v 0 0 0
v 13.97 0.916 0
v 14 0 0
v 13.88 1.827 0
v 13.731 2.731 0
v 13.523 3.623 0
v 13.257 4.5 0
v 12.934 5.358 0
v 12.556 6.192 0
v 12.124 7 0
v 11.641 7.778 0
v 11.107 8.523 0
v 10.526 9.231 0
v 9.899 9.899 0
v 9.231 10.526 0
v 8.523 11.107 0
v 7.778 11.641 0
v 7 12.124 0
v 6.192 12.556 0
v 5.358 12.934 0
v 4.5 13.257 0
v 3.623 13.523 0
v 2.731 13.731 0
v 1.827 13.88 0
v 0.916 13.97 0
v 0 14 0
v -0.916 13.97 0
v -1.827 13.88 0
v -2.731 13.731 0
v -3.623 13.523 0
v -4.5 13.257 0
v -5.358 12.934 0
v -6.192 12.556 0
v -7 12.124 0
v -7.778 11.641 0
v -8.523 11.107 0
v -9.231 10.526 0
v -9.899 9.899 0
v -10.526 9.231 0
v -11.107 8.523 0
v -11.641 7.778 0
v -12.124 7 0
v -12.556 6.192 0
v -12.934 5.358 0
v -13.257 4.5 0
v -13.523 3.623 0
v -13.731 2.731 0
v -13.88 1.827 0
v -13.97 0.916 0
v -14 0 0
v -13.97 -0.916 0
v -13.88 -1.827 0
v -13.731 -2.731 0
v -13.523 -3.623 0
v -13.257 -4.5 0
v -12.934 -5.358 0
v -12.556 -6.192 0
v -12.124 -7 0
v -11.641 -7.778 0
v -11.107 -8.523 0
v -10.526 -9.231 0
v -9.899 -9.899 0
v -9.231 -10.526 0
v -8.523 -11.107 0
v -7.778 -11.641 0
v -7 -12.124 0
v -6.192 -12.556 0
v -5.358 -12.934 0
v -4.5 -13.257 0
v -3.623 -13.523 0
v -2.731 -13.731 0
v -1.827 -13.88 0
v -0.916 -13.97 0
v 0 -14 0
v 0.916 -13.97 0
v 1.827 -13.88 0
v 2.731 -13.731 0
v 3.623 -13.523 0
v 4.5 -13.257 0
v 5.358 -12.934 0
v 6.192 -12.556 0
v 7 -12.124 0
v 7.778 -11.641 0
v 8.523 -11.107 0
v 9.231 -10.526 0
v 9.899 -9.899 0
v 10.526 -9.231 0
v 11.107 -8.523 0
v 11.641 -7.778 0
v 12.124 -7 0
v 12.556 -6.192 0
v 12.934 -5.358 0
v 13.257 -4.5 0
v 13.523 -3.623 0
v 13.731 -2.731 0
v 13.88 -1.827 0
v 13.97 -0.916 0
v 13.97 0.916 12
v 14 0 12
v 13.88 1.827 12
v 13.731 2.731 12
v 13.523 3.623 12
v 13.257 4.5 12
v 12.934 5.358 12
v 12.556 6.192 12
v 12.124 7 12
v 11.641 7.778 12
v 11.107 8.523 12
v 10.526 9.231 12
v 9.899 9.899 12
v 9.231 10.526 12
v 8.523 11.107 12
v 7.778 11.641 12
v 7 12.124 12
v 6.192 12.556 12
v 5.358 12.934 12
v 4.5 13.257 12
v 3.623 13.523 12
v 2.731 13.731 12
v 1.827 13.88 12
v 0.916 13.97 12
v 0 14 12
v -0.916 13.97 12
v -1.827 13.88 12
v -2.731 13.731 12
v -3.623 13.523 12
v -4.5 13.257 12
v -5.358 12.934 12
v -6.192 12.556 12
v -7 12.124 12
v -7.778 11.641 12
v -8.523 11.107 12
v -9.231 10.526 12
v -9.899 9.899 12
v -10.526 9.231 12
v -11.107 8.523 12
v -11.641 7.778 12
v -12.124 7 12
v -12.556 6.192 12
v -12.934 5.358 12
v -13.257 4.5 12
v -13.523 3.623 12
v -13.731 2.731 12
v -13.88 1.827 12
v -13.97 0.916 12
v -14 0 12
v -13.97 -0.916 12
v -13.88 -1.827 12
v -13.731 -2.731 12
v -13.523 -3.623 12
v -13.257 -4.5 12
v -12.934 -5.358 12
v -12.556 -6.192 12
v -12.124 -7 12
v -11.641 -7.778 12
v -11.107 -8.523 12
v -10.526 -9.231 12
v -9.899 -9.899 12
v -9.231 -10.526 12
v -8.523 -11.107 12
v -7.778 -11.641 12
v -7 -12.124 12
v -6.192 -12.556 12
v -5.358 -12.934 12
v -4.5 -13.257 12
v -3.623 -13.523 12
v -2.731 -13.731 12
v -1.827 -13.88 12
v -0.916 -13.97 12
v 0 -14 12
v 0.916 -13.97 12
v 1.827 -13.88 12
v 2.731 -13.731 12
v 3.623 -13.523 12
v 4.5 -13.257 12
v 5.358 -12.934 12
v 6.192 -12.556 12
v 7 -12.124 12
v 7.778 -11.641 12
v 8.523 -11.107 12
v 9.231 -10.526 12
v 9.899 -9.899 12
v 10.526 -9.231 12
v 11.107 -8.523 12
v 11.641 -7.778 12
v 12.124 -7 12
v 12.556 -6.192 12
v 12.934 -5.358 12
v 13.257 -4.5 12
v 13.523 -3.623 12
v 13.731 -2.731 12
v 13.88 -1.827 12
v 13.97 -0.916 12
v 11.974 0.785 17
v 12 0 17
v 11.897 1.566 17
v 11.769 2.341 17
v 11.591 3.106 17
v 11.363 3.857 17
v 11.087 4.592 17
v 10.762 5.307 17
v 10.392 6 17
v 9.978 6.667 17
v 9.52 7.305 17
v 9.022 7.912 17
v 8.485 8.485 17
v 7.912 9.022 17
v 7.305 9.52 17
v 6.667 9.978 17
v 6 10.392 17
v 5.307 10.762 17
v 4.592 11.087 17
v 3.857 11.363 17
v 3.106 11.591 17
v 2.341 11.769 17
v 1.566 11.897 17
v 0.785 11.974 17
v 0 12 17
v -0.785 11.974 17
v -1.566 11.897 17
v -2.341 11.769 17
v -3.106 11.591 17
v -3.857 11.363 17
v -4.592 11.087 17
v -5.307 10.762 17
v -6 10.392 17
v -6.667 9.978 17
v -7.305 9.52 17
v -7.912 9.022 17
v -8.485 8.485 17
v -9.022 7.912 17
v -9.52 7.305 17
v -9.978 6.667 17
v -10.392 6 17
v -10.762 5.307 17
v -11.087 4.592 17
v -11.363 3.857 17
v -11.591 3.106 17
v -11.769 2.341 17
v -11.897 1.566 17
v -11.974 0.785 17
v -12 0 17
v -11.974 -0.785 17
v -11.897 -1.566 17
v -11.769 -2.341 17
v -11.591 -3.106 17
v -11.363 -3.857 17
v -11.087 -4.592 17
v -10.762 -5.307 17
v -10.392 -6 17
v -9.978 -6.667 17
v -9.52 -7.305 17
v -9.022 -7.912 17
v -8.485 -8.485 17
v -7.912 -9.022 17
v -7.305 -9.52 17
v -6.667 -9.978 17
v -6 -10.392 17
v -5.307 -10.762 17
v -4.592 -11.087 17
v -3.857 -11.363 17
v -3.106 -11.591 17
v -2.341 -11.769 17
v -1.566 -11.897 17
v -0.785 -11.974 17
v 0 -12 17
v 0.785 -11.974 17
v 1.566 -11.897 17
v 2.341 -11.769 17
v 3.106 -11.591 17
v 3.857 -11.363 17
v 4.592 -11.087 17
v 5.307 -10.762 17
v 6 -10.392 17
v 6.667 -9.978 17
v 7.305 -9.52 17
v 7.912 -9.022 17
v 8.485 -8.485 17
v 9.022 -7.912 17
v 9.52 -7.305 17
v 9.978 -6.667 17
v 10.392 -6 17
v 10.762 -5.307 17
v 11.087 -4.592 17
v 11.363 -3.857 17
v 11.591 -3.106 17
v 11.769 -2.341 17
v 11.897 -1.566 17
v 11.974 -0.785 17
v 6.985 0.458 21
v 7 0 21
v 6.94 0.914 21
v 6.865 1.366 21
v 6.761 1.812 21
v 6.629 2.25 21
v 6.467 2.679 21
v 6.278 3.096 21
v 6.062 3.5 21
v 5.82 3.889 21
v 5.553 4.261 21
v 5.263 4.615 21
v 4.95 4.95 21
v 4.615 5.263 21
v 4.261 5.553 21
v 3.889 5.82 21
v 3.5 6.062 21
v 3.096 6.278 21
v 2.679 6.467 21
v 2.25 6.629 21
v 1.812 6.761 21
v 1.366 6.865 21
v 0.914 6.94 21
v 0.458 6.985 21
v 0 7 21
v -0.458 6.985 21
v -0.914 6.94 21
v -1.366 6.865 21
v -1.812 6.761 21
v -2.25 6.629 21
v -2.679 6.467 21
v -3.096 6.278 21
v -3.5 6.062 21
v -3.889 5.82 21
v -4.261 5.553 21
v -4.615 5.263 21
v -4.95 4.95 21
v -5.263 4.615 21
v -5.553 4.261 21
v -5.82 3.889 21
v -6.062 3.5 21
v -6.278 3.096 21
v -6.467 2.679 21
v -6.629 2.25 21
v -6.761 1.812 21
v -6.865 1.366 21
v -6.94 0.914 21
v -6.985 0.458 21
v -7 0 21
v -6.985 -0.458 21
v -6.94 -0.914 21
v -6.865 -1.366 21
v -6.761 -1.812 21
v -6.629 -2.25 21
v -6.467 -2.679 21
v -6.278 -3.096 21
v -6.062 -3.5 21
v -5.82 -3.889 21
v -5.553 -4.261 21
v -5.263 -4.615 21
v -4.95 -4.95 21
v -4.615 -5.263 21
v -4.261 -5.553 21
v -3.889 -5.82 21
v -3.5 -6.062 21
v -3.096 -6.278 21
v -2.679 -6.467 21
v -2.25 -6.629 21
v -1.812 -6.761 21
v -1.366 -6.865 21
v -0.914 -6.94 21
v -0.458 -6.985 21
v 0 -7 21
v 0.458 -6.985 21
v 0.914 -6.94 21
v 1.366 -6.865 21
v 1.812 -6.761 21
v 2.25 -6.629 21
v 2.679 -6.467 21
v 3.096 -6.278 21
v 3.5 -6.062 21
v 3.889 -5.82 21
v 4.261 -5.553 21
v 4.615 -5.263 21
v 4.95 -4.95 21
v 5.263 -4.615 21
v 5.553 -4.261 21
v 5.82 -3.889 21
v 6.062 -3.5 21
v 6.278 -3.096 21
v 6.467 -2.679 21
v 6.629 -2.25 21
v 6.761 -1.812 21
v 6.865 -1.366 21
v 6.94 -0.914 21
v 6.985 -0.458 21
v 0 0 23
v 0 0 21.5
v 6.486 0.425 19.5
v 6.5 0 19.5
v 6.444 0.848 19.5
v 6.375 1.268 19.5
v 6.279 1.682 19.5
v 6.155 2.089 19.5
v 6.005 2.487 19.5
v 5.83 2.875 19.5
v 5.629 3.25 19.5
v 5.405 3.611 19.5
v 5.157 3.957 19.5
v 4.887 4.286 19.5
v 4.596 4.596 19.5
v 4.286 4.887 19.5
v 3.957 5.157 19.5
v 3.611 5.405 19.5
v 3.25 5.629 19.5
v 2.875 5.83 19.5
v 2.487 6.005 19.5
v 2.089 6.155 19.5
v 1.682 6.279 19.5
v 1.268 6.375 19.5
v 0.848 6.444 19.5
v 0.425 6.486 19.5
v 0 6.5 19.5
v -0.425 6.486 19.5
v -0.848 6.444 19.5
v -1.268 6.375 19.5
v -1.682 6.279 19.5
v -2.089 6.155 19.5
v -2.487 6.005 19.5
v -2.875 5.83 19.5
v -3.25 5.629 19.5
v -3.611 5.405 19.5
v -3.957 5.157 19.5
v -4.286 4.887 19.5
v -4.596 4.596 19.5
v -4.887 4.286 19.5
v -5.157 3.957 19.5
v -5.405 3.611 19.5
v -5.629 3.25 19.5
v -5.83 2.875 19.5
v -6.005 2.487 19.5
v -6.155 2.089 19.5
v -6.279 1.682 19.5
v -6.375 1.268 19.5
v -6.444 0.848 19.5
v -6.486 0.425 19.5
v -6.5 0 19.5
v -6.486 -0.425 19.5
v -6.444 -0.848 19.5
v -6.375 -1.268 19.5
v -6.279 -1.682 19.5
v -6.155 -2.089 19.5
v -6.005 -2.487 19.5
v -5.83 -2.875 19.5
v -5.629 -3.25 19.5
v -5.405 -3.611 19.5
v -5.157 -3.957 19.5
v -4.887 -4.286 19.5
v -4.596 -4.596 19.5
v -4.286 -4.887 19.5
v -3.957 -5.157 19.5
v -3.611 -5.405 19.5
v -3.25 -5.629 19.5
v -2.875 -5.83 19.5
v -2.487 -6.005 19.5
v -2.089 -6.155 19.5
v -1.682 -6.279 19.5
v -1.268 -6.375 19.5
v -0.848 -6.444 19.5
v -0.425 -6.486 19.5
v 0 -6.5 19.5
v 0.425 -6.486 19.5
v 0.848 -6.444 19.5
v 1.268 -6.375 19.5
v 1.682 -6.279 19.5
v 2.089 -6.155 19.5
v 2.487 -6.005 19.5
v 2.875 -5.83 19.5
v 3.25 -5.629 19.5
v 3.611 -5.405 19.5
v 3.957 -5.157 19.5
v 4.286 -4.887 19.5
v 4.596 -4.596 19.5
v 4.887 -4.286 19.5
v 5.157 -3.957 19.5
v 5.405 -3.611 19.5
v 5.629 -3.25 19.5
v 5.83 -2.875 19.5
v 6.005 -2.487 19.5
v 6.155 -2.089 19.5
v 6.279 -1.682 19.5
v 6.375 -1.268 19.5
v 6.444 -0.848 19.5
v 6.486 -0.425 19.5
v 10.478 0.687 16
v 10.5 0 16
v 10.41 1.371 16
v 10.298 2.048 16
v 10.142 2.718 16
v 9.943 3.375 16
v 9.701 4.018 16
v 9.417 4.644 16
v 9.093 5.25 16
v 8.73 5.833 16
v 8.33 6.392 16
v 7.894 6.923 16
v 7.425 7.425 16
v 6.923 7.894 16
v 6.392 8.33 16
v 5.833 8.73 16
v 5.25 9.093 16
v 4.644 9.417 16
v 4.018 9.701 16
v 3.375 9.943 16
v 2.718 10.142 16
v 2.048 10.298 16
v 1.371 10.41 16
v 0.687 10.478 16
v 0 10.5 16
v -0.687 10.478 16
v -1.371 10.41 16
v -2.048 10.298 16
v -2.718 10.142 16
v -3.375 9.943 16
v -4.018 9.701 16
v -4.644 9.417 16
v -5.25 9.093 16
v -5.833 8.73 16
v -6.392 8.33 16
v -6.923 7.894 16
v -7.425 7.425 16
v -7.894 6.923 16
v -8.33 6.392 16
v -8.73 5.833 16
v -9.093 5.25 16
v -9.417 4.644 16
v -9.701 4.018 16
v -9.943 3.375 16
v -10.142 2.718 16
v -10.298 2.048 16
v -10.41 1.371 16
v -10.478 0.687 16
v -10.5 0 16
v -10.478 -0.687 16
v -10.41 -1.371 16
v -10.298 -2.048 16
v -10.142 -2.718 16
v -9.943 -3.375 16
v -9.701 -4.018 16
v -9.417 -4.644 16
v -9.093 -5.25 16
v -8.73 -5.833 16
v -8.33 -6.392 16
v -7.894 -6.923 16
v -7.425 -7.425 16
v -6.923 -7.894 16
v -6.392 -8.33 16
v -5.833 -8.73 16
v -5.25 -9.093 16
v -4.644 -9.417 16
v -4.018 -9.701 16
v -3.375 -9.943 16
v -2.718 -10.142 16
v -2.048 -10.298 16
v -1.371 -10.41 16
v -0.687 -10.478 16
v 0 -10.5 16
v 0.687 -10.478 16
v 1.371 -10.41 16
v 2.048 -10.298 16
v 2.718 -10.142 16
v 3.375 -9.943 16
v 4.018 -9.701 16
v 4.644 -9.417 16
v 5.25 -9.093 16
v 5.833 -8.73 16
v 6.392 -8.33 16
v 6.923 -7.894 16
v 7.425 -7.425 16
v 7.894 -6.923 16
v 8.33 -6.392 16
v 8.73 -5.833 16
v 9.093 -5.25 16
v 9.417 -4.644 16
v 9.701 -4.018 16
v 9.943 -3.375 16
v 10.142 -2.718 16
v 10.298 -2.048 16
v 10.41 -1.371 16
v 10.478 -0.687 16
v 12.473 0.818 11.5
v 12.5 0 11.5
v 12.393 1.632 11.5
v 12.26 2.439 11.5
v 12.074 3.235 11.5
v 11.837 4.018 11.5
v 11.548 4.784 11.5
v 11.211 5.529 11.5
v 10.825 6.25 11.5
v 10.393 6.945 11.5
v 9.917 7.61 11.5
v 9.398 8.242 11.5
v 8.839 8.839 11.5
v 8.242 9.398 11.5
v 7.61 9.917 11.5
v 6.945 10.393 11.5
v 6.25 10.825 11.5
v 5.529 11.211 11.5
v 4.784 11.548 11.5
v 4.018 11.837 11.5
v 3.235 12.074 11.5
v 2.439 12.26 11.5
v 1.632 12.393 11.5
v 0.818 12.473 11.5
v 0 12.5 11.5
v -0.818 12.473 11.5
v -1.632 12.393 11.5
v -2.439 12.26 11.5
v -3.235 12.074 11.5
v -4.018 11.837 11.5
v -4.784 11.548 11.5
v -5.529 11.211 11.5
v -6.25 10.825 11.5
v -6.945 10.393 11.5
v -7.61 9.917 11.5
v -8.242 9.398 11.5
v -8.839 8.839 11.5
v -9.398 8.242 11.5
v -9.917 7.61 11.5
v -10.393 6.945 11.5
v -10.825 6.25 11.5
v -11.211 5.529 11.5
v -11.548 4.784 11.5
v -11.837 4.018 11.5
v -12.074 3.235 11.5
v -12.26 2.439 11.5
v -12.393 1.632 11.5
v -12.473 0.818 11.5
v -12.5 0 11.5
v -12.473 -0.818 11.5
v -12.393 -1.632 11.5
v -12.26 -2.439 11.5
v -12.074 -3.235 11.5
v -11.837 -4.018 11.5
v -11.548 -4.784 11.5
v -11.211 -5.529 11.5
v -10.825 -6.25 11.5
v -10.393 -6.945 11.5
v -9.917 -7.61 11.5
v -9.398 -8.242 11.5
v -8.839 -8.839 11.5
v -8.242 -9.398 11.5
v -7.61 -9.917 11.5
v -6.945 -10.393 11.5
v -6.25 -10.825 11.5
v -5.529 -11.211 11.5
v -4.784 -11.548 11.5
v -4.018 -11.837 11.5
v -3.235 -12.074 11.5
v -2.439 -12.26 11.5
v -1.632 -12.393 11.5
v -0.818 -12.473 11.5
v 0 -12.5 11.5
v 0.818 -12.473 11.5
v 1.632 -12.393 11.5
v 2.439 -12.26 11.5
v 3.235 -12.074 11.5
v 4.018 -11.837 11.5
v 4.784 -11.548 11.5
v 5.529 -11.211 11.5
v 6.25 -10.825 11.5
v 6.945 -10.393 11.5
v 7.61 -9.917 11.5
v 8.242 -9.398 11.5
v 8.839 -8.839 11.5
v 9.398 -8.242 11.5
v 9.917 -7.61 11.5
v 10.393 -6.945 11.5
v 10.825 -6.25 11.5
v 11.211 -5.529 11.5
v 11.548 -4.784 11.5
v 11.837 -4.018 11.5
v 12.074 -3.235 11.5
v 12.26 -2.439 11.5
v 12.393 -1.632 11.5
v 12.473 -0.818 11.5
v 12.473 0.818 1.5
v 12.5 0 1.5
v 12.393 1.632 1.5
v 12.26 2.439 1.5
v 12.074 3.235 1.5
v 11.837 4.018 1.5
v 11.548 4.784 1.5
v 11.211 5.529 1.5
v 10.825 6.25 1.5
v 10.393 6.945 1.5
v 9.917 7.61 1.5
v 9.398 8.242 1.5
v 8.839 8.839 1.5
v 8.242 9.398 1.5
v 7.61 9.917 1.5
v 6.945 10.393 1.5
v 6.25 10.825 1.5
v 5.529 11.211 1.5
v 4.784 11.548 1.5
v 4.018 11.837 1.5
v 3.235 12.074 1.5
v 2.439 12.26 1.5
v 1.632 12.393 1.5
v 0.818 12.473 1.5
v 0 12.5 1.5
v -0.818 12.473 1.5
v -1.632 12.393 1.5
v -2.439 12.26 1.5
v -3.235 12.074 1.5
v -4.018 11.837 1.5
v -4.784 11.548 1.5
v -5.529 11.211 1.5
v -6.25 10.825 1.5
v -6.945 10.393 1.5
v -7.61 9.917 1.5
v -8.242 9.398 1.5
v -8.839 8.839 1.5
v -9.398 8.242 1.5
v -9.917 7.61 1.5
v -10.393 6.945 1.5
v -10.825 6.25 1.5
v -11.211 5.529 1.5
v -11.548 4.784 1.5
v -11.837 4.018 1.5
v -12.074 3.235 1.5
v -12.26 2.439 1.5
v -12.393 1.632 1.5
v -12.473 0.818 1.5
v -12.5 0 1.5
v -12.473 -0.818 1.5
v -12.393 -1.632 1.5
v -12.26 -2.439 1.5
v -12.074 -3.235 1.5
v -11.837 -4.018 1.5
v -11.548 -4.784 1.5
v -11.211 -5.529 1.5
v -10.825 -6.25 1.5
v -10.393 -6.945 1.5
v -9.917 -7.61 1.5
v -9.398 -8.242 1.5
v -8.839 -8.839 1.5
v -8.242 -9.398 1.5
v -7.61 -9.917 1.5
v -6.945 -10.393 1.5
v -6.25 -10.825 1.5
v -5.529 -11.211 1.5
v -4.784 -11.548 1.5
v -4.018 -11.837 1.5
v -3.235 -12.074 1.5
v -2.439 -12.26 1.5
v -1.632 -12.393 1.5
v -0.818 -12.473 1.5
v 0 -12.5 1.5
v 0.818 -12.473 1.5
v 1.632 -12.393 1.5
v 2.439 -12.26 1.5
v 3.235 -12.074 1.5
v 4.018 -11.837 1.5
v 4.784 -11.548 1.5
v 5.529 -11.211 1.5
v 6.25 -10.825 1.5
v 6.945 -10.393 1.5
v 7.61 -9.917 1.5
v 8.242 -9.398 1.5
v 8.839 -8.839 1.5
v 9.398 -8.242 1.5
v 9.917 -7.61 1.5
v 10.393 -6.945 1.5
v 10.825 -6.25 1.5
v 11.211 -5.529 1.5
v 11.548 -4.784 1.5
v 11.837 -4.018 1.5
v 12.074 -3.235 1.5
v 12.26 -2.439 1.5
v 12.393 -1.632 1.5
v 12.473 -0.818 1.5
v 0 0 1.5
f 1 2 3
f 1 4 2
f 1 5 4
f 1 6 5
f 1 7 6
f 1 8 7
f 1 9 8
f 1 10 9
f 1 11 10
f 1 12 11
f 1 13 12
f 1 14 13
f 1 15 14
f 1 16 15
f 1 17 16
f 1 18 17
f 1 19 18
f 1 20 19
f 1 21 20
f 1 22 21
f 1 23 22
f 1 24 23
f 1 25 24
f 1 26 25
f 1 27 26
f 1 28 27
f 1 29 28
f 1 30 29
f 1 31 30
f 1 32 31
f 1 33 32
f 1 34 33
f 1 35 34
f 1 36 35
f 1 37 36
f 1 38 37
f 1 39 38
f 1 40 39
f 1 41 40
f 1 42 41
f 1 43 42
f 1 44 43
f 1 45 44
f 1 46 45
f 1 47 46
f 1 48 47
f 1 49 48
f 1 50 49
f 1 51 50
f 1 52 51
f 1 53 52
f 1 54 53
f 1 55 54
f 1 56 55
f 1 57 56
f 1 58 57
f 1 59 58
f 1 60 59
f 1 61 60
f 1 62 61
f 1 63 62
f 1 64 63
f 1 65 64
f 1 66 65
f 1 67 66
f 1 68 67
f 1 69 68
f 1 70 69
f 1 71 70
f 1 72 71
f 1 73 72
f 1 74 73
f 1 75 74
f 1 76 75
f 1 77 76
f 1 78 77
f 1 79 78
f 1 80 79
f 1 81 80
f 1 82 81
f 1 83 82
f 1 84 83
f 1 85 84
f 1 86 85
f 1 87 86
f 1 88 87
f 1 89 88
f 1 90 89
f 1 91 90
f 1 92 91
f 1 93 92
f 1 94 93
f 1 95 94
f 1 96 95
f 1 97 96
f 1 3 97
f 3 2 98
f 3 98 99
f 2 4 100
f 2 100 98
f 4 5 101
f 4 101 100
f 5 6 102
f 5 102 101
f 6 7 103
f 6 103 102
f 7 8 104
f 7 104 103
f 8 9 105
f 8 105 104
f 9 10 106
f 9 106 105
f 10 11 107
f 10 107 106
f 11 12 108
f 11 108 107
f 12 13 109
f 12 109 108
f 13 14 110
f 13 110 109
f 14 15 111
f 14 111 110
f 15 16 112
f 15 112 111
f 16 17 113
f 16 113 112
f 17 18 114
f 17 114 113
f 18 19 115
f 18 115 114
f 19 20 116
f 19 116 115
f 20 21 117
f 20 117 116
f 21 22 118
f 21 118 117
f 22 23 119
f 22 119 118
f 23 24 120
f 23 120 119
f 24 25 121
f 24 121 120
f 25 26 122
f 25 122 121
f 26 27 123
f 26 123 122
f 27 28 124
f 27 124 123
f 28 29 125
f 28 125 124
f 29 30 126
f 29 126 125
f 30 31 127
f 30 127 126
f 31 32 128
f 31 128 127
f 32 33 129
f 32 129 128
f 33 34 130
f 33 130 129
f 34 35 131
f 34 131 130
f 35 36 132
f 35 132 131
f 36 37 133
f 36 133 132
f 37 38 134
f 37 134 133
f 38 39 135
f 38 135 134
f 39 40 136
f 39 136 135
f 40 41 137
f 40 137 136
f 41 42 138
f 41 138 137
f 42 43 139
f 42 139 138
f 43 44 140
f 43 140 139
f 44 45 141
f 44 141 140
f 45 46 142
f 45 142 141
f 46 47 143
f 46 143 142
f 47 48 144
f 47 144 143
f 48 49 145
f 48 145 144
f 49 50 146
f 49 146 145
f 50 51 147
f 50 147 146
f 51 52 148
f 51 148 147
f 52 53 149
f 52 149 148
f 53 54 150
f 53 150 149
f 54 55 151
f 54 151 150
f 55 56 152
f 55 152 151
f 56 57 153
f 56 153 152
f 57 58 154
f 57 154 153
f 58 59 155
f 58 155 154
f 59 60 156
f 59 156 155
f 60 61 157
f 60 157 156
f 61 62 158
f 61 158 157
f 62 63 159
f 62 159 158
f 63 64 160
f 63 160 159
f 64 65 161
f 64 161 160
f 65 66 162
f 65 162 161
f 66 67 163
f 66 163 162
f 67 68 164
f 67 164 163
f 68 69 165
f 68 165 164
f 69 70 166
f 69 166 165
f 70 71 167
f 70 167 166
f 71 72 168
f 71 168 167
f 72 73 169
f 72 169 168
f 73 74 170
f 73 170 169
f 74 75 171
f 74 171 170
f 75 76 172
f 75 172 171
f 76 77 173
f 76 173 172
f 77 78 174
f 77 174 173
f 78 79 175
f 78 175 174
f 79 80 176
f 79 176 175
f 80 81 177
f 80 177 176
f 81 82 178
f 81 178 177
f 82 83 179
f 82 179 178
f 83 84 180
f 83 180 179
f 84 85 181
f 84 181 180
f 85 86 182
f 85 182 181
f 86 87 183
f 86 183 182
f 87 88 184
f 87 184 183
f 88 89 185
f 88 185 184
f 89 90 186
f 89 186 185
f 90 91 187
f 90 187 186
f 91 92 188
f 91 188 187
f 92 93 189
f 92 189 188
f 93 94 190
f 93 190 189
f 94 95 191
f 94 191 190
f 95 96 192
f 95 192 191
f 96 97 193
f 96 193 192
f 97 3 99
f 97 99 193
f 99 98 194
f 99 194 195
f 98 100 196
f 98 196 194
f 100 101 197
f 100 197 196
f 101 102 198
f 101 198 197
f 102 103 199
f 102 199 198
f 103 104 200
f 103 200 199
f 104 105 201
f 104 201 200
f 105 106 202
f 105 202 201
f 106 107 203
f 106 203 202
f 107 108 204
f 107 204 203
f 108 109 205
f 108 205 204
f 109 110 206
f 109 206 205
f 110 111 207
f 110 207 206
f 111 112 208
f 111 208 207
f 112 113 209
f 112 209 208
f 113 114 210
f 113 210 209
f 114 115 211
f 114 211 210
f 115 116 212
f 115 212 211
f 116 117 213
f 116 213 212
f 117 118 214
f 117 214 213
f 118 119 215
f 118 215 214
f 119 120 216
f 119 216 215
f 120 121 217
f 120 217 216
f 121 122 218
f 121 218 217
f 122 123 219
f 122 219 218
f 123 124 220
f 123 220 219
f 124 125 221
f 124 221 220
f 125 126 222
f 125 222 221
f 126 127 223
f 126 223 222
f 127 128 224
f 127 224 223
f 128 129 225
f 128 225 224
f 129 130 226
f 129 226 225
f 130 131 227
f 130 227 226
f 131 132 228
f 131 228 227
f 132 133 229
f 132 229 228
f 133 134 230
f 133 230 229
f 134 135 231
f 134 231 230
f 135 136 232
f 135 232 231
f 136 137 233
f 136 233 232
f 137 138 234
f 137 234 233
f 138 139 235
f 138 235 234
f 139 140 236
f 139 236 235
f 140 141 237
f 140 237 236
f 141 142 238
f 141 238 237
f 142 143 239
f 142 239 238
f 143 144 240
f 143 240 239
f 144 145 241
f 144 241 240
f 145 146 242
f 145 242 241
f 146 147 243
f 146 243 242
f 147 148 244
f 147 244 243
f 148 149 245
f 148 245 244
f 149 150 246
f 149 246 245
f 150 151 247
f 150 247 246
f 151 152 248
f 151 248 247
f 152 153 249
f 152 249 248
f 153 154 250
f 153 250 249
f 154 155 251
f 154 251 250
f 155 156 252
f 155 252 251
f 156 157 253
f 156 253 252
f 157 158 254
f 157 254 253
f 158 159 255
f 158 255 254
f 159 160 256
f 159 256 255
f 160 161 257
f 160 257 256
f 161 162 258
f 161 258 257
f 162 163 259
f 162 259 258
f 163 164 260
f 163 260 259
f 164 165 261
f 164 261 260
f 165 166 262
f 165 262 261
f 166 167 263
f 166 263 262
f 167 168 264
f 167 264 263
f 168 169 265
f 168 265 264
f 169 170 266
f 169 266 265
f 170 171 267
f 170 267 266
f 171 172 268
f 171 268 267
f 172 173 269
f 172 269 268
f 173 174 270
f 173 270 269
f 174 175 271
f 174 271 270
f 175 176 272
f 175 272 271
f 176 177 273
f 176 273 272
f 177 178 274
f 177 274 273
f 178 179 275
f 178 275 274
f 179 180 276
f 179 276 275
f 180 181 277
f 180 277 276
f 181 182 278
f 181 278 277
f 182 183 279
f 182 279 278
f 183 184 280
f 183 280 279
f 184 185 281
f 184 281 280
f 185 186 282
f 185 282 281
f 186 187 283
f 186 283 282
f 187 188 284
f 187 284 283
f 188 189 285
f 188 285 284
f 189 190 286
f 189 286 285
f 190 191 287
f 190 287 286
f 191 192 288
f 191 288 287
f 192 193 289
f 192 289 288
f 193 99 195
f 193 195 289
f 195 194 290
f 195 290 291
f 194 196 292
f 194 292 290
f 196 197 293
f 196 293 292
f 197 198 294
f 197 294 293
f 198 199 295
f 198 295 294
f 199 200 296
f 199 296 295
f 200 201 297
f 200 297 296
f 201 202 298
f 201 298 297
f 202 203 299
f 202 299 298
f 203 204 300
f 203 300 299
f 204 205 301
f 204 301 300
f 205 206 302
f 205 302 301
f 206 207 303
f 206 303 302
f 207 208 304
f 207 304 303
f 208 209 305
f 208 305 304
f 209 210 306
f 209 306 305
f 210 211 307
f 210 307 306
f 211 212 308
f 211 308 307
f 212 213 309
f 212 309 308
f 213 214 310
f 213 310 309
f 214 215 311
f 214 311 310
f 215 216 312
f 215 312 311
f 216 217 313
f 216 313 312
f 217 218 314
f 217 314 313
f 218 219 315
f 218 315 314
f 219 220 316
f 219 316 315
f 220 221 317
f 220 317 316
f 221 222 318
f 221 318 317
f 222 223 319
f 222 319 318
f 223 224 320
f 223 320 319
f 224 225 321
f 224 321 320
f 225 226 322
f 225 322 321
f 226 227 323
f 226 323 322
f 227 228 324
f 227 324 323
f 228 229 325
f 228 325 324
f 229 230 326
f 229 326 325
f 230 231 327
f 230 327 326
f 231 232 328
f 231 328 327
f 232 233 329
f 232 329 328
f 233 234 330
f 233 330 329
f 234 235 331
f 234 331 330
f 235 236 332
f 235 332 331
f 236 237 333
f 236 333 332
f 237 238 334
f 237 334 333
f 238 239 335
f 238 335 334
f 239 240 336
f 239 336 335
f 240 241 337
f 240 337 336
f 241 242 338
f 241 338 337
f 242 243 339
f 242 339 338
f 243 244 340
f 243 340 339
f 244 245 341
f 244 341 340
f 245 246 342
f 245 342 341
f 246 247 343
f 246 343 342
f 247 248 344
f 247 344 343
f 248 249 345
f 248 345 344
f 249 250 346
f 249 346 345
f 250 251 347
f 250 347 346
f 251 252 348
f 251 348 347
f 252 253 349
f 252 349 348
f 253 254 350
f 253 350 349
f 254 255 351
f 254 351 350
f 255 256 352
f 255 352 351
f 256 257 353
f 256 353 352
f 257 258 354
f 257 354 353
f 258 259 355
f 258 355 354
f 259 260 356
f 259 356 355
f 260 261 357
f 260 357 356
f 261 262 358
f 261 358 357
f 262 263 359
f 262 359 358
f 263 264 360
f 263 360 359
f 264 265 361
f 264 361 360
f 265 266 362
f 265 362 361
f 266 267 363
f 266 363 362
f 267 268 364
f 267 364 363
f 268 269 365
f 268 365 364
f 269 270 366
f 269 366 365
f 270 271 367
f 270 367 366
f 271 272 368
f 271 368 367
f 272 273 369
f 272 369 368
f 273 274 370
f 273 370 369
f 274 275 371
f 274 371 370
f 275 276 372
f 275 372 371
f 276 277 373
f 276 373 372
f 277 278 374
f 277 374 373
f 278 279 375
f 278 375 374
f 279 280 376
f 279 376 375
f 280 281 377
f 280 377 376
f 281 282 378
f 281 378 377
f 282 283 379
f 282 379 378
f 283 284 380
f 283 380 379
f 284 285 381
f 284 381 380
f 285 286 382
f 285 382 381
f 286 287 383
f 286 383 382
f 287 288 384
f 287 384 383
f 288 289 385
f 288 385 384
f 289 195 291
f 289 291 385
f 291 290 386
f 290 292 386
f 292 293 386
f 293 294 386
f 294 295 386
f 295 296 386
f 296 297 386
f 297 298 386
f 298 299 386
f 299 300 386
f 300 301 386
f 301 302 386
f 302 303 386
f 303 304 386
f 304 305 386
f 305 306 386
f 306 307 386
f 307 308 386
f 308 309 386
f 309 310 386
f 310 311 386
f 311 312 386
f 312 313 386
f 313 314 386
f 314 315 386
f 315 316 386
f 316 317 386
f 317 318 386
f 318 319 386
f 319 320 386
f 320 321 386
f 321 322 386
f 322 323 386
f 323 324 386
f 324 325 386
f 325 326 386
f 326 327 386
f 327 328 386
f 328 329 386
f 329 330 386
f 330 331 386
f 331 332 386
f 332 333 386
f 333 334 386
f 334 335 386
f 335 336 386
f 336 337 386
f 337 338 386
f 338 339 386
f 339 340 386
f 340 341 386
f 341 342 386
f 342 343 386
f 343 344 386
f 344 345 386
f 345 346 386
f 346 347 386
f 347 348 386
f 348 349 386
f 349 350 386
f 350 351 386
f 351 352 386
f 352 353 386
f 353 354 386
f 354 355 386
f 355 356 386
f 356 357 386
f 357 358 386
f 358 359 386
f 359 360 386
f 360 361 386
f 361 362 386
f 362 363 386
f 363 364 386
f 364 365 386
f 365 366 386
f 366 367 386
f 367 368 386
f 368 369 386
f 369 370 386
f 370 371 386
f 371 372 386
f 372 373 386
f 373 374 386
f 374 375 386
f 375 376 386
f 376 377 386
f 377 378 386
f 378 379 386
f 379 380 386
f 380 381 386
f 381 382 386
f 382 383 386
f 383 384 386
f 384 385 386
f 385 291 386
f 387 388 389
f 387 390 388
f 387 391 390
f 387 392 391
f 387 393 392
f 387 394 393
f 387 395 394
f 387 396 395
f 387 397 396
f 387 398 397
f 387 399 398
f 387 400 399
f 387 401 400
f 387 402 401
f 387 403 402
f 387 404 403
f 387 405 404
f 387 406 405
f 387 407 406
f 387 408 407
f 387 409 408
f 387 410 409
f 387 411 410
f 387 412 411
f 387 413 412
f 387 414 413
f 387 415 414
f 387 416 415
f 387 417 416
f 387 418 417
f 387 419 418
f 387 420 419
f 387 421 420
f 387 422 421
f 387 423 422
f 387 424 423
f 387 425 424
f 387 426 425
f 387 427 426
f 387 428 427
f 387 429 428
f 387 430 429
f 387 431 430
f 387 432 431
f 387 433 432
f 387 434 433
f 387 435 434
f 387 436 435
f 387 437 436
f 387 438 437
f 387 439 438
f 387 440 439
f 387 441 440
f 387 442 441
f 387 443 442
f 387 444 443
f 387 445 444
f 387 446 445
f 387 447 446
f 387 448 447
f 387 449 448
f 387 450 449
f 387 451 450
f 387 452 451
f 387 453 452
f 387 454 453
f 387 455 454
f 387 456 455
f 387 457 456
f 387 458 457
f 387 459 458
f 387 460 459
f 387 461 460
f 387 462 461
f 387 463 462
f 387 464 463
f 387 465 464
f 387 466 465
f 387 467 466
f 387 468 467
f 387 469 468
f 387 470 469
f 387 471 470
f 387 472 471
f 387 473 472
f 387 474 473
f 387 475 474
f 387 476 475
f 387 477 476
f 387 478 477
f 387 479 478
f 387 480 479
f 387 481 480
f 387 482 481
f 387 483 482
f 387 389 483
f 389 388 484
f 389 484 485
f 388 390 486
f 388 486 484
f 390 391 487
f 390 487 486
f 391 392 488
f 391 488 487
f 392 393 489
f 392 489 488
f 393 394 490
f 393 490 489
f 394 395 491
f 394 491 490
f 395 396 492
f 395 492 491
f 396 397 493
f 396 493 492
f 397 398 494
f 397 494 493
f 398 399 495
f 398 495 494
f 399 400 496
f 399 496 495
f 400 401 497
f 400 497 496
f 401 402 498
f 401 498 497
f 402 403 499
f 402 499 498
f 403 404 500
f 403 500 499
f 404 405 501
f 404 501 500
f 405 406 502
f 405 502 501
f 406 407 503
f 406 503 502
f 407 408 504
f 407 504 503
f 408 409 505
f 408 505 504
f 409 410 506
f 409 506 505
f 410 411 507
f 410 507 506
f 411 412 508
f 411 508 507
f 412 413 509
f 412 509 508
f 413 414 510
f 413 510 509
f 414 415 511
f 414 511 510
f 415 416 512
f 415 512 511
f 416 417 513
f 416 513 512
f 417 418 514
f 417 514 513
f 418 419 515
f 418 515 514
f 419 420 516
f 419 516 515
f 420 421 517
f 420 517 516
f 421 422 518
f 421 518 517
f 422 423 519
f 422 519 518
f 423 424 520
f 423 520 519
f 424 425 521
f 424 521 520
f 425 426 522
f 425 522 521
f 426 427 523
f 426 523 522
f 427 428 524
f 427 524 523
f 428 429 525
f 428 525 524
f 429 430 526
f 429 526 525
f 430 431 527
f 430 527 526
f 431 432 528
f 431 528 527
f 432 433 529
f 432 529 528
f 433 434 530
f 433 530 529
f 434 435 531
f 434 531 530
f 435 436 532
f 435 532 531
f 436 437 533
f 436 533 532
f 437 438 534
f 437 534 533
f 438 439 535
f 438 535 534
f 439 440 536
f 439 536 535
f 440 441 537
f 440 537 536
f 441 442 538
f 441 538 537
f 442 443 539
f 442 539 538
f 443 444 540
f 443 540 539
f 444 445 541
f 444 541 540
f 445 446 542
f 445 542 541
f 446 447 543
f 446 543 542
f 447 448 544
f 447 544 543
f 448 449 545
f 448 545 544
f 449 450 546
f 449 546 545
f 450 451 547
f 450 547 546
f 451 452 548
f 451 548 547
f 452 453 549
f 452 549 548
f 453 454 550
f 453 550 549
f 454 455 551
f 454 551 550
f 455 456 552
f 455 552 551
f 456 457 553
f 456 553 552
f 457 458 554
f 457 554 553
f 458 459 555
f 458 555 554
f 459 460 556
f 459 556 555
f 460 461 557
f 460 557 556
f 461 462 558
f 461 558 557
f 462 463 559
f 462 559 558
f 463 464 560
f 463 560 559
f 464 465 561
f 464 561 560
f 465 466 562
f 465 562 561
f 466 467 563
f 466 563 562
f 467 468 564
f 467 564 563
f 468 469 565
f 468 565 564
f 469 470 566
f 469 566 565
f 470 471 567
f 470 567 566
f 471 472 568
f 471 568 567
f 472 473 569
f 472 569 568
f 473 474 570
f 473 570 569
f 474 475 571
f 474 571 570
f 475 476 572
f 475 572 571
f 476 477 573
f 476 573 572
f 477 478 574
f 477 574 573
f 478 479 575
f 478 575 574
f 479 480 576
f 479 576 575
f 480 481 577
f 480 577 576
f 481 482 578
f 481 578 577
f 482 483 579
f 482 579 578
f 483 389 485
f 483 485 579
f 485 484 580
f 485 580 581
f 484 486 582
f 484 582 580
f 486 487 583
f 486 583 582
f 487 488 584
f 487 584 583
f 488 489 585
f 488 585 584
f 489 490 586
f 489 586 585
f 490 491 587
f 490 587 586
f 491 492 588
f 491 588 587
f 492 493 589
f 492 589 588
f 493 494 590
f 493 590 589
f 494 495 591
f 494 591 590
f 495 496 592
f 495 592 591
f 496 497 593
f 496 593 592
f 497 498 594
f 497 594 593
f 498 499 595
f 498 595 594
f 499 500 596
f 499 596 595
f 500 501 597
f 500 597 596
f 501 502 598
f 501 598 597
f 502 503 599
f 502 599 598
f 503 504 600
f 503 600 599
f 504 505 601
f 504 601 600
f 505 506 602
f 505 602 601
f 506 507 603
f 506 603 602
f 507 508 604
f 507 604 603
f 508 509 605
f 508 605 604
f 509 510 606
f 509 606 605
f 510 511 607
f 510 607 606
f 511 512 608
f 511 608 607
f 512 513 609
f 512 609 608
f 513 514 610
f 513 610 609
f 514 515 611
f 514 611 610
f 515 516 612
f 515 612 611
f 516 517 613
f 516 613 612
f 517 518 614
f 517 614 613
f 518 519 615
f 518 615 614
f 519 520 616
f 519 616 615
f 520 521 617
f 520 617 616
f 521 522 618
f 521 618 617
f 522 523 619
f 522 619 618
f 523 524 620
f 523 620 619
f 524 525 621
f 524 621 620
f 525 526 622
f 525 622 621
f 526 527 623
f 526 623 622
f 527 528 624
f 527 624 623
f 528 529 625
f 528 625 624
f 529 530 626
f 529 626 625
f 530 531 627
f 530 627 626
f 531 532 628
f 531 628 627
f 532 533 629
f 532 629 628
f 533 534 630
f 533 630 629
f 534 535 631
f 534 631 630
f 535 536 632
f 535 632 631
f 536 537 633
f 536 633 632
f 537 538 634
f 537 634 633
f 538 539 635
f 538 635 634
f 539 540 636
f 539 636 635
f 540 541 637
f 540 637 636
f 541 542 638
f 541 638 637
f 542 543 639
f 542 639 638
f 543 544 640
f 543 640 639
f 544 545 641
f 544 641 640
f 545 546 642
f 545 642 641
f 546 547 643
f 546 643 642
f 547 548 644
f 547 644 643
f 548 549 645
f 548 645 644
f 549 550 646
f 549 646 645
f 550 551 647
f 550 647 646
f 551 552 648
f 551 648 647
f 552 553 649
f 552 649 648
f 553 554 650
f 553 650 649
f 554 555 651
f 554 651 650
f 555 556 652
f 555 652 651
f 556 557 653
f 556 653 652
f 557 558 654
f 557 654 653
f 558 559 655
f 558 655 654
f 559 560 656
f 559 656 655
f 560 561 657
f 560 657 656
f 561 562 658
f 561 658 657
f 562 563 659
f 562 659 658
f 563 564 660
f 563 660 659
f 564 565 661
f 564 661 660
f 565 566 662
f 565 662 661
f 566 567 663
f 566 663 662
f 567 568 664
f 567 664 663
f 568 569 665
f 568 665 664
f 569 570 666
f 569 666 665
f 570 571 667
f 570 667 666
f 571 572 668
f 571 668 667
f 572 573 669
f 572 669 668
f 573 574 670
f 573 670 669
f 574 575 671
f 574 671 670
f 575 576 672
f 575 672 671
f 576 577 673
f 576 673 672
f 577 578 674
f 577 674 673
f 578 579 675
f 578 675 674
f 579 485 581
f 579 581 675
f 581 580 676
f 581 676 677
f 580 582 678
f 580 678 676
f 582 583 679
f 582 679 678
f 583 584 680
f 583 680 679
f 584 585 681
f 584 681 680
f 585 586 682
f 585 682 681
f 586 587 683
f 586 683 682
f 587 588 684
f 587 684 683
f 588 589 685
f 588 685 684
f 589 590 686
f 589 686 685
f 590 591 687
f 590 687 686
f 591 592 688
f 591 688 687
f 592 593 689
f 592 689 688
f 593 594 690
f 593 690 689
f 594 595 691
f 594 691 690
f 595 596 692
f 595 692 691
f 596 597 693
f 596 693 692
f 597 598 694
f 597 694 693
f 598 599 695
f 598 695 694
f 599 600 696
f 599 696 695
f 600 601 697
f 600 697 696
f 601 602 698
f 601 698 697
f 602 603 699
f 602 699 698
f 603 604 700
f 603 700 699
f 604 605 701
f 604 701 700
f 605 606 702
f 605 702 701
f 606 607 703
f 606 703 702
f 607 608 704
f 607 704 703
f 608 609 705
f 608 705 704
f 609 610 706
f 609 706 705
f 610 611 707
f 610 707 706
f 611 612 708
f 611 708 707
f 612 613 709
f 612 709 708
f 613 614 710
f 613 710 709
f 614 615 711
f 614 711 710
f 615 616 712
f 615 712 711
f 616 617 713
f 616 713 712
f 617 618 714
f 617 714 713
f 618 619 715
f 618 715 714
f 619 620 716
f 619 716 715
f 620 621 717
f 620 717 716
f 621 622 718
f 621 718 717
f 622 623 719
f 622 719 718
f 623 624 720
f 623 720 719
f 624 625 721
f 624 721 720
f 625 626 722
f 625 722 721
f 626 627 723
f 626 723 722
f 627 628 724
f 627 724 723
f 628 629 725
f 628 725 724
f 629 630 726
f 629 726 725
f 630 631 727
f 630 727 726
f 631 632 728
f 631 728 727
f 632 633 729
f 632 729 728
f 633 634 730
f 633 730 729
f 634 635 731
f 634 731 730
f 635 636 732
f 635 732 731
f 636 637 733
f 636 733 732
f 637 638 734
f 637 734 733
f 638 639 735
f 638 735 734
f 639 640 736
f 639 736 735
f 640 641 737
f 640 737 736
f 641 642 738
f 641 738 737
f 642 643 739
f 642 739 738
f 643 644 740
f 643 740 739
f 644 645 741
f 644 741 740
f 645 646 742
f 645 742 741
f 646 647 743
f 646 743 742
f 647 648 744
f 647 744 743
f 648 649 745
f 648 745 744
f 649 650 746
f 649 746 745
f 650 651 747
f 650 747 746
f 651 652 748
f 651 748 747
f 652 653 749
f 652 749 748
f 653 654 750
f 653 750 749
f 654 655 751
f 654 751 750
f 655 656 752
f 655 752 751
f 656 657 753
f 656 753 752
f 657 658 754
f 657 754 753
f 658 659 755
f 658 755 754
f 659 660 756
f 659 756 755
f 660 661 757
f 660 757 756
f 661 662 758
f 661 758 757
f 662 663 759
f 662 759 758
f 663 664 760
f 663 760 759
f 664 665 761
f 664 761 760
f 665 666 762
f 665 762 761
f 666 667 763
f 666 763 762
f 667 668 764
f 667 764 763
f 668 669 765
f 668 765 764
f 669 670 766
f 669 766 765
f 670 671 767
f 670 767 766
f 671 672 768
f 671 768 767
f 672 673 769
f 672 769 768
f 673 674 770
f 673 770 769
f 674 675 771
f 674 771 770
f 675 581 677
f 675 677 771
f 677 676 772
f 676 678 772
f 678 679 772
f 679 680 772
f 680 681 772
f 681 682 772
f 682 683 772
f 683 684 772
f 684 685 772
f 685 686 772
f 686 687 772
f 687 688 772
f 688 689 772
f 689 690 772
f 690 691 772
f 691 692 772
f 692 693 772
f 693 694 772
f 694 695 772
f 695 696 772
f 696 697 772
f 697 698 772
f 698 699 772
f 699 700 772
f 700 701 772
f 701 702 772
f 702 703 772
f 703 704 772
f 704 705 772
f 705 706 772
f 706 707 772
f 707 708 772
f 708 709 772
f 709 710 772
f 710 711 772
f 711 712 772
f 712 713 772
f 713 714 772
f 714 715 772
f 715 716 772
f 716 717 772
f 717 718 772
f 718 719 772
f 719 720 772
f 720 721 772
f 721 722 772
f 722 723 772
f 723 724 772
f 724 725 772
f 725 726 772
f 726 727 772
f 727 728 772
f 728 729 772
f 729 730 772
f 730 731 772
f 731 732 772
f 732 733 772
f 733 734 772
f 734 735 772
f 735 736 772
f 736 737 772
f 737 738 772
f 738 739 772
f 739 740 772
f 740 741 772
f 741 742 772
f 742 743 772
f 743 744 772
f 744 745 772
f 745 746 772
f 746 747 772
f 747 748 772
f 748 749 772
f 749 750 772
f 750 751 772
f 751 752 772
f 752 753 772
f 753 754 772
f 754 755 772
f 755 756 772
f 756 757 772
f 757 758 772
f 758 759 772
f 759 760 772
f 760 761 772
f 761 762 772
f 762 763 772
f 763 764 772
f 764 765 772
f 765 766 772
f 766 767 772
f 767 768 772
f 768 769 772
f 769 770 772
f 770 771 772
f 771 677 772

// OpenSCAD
// Original MechIntel educational model. CC0-1.0. Units: mm.
// Not a standardized or load-rated component.
$fn=96;
// Section points: [radius, height], mm. Edit to change the profile.
section=[[0, 0], [14, 0], [14, 12], [12, 17], [7, 21], [0, 23], [0, 21.5], [6.5, 19.5], [10.5, 16], [12.5, 11.5], [12.5, 1.5], [0, 1.5]];
rotate_extrude($fn=96) polygon(points=section);
